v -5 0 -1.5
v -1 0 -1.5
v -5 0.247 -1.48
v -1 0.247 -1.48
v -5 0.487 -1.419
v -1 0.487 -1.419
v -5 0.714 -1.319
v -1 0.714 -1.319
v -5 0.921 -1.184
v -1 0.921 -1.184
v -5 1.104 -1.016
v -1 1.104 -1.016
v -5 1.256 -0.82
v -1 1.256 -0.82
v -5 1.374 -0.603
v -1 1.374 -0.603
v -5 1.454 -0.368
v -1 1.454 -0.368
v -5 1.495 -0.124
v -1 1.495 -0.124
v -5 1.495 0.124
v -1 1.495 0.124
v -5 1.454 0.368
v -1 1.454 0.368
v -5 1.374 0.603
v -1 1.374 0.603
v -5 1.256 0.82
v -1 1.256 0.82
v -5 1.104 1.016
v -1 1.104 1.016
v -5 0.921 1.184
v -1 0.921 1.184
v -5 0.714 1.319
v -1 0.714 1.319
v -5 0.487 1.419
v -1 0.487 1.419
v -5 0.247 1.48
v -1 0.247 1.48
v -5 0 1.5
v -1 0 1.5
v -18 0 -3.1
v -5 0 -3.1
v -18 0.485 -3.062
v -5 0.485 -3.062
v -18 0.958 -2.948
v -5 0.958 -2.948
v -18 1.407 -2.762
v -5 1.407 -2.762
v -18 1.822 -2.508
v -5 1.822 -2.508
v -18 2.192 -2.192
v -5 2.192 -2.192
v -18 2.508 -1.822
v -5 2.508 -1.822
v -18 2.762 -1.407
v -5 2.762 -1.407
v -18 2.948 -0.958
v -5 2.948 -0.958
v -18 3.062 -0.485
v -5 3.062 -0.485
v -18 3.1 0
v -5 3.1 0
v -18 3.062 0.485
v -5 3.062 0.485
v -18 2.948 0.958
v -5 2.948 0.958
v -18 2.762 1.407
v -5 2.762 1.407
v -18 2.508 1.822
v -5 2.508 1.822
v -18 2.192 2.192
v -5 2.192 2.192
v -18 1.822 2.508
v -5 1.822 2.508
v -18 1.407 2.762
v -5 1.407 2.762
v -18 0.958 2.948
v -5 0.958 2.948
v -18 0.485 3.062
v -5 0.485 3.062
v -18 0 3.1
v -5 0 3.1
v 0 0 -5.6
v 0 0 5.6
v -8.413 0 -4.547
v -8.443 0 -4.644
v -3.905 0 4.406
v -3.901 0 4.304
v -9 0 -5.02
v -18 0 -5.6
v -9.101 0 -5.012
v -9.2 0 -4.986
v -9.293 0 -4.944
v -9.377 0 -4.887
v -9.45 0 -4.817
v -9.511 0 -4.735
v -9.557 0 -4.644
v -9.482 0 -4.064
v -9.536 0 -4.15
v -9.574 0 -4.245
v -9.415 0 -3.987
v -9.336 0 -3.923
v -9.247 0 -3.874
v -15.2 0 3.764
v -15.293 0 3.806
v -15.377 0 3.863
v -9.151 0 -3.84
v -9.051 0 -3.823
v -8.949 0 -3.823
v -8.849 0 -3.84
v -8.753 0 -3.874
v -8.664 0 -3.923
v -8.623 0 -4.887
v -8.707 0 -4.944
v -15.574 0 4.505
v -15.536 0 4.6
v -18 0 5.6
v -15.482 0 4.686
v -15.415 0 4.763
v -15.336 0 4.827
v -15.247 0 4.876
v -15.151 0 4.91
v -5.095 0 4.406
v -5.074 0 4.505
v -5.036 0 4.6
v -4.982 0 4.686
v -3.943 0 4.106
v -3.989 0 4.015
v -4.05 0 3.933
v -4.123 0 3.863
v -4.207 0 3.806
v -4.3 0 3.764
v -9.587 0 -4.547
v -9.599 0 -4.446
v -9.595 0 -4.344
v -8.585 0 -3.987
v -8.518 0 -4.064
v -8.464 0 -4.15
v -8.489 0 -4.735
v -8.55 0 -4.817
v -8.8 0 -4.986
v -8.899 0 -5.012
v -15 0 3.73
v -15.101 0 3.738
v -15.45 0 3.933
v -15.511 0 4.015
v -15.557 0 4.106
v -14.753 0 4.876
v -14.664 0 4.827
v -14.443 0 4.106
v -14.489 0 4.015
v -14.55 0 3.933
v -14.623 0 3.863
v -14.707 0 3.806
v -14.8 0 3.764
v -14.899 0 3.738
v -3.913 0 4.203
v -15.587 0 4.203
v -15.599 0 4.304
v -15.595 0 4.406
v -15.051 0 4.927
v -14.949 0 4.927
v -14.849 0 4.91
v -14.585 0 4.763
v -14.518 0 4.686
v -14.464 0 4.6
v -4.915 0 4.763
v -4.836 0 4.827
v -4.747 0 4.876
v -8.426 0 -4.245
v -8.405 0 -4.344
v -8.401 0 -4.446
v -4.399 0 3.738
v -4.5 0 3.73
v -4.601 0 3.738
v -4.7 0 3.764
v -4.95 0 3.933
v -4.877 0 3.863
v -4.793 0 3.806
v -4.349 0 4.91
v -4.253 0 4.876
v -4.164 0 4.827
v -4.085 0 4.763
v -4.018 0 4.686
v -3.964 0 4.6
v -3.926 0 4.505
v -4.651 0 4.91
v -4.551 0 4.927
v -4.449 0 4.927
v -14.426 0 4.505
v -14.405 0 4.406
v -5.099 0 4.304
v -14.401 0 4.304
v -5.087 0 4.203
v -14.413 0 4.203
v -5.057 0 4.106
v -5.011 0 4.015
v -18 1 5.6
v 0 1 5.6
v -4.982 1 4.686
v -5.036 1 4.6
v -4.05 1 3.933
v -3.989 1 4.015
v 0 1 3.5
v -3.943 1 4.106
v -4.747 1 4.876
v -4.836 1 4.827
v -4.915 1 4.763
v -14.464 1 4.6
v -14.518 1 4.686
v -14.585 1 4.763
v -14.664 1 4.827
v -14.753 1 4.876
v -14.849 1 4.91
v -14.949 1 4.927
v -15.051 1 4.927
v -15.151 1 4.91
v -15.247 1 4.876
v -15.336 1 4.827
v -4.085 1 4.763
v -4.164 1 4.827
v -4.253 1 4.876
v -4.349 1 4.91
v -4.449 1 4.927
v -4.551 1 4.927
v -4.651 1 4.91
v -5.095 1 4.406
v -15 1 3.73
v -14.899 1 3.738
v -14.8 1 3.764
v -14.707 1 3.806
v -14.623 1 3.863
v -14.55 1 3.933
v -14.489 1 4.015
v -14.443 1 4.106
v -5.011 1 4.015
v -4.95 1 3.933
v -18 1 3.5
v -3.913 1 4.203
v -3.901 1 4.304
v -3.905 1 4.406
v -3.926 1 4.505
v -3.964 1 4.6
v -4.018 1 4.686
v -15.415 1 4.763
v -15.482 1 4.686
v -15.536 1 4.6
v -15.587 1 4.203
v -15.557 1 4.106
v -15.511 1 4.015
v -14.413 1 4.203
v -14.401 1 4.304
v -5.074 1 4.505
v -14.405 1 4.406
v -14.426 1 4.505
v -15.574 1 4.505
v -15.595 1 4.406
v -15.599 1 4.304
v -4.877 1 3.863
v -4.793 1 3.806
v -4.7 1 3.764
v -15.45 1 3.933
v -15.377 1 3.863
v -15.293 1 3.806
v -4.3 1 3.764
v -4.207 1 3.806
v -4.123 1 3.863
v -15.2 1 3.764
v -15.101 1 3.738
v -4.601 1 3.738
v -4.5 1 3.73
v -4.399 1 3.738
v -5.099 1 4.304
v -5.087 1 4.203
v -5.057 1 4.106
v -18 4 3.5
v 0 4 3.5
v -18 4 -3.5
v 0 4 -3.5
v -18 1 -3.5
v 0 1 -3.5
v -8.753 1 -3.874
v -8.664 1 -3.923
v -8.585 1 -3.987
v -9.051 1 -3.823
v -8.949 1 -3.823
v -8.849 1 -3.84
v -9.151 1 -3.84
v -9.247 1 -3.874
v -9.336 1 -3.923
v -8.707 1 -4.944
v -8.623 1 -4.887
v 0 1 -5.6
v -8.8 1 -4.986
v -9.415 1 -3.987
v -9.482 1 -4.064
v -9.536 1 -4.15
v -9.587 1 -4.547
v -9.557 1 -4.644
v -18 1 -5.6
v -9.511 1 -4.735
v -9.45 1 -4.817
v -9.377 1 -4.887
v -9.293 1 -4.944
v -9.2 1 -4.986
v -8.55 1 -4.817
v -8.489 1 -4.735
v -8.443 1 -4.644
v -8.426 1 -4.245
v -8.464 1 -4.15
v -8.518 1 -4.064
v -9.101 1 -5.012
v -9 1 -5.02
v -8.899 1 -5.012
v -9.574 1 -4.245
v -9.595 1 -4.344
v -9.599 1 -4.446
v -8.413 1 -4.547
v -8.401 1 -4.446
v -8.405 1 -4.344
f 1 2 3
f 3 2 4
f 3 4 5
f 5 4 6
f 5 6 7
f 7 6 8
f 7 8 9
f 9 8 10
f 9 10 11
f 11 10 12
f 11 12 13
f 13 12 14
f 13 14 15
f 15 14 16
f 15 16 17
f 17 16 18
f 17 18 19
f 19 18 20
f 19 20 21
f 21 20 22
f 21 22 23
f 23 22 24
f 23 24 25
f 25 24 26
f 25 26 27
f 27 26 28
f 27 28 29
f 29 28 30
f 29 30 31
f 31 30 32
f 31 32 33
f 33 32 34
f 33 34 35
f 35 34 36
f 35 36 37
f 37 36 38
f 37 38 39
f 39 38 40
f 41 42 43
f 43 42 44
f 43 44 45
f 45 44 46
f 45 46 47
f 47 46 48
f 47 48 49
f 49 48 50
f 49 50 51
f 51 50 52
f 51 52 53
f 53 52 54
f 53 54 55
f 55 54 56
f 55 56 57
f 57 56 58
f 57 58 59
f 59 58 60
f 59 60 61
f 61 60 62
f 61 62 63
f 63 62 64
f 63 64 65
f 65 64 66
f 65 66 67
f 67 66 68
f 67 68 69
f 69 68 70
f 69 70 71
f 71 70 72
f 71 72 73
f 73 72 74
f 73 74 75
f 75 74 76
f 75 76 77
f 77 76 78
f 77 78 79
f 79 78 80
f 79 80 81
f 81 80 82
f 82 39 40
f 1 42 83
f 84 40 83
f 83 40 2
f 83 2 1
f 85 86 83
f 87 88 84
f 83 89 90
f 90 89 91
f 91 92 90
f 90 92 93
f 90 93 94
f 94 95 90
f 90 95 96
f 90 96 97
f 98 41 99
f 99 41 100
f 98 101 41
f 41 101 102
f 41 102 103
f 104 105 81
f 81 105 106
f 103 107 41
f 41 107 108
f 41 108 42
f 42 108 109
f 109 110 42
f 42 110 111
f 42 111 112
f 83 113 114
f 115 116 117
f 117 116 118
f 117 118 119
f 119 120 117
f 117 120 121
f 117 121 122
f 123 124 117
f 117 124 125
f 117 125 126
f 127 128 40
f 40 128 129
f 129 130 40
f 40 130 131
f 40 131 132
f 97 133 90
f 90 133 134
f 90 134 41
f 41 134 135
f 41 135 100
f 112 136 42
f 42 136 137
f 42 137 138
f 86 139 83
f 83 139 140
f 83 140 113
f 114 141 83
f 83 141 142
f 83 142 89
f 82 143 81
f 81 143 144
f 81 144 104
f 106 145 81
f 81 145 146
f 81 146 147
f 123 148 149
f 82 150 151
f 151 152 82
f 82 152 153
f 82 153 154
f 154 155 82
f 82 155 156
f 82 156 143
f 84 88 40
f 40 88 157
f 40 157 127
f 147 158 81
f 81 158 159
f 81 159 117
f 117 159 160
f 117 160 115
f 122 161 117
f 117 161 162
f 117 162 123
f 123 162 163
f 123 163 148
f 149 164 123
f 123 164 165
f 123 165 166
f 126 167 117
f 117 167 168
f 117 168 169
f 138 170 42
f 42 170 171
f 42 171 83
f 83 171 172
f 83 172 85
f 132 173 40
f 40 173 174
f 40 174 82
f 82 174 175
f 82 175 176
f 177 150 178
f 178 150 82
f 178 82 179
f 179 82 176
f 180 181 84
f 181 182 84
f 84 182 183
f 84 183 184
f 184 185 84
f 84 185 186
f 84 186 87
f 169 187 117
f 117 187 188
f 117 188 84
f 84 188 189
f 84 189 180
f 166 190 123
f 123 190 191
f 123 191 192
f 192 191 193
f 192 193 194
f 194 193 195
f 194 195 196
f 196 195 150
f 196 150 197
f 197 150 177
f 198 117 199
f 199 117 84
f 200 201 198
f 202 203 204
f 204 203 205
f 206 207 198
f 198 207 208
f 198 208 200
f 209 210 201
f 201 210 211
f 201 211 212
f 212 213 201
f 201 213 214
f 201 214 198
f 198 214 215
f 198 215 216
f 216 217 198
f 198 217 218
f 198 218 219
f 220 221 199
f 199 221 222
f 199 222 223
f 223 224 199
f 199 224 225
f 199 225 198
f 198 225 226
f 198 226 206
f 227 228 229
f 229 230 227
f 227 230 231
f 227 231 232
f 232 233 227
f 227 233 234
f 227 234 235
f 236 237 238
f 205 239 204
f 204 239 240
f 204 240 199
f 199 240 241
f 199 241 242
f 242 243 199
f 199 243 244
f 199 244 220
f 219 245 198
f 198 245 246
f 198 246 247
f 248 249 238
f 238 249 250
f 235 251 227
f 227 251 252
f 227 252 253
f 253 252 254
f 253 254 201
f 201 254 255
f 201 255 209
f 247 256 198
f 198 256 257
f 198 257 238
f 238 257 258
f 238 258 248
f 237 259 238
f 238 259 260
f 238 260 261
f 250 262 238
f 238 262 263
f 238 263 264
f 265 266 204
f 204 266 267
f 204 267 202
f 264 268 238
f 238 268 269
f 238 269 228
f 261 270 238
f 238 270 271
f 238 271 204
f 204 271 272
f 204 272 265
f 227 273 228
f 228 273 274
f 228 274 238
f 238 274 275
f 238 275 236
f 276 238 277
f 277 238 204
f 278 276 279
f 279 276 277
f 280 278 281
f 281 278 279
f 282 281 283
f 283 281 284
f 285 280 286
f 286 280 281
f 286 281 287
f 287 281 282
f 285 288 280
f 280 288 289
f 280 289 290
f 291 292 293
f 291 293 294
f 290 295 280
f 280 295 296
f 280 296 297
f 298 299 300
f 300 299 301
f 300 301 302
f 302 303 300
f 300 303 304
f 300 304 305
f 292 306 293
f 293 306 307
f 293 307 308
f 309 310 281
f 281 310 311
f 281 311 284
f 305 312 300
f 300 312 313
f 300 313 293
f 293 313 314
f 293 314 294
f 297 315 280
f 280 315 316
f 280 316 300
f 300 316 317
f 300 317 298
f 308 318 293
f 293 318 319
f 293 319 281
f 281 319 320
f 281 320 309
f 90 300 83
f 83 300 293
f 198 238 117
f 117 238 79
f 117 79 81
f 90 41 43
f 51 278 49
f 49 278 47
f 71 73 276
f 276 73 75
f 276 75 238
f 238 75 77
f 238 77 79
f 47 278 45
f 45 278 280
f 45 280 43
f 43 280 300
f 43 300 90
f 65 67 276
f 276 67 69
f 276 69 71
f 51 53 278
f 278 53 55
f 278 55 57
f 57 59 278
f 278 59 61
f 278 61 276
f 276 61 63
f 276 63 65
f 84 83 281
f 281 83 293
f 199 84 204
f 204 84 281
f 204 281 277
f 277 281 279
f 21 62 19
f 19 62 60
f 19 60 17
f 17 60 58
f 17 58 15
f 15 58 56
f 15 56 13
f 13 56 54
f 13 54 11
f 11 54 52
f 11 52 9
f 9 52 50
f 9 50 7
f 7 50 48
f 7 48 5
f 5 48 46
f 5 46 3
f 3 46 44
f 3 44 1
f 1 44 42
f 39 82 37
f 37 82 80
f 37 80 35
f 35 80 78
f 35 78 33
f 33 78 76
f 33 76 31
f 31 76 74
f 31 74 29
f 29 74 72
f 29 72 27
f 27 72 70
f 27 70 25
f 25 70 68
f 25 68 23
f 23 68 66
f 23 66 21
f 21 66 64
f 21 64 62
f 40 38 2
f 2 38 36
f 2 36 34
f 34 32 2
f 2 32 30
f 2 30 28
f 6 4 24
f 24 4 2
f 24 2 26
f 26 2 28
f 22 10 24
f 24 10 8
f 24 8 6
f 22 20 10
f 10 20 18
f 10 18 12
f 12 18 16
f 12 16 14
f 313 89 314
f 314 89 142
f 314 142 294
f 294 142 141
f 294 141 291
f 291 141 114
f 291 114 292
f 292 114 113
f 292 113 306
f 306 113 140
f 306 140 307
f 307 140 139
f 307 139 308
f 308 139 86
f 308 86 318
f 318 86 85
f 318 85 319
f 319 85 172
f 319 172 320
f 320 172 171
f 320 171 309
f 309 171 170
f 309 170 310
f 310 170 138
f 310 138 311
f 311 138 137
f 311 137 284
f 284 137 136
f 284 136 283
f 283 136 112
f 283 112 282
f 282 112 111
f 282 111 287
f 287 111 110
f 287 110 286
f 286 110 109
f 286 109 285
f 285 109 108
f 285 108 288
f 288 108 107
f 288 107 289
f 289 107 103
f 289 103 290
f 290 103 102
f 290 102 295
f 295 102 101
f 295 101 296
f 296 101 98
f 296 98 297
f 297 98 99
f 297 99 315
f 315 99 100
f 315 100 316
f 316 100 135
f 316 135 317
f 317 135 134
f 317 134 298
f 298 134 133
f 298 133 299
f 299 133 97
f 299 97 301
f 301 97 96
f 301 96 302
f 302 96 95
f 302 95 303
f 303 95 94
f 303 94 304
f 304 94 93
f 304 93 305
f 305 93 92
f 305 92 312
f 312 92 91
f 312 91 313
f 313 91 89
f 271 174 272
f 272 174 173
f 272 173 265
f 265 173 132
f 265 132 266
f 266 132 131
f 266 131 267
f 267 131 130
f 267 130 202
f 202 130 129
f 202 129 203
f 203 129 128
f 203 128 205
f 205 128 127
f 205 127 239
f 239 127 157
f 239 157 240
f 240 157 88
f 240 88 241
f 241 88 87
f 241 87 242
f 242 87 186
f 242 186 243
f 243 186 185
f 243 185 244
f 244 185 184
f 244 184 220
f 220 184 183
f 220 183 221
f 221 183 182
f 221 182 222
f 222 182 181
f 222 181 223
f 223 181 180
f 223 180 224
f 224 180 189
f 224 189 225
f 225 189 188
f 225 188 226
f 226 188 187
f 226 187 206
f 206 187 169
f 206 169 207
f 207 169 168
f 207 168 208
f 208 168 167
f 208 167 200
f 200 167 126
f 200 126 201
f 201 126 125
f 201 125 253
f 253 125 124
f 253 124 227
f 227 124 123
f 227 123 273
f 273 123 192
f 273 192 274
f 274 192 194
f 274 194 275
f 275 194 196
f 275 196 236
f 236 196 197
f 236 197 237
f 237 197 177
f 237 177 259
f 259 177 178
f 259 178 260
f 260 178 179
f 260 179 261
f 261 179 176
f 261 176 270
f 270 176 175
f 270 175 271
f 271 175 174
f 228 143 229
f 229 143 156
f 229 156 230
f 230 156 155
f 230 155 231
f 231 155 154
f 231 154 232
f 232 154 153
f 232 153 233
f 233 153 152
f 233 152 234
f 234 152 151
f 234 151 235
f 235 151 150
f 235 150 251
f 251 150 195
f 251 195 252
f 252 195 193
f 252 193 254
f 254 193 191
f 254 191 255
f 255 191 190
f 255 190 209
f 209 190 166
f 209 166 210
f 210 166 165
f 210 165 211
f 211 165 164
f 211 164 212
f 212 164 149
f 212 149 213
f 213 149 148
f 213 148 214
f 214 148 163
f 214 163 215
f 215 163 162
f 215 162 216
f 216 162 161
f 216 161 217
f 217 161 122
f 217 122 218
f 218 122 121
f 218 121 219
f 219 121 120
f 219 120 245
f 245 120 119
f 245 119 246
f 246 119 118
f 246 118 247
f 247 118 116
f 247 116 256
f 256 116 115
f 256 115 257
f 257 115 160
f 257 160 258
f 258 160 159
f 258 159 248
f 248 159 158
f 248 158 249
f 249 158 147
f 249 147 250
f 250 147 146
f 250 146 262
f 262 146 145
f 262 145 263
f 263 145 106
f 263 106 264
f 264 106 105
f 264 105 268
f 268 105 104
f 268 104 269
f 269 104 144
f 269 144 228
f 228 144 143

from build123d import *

# Parameters (mm, degrees)
EXTRUDE_1_DEPTH     = 18
EXTRUDE_2_DEPTH     = 5
EXTRUDE_3_DEPTH     = 1
SKETCH_2_R          = 0.6
CUT_EXTRUDE_1_DEPTH = 20.270703153


with BuildPart() as part:
    # 草图1 → 凸台-拉伸1 (new body)
    with BuildSketch(Plane(origin=(0, 0, 0), x_dir=(0, 0, -1), z_dir=(1, 0, 0))):
        with BuildLine():
            Line((-5.6, 1), (-5.6, 0))
            Line((-5.6, 0), (-3.1, 0))
            ThreePointArc((-3.1, 0), (0, 3.1), (3.1, 0))
            Line((3.1, 0), (5.6, 0))
            Line((5.6, 0), (5.6, 1))
            Line((5.6, 1), (3.5, 1))
            Line((3.5, 1), (3.5, 4))
            Line((3.5, 4), (-3.5, 4))
            Line((-3.5, 4), (-3.5, 1))
            Line((-3.5, 1), (-5.6, 1))
        make_face()
    extrude(amount=-EXTRUDE_1_DEPTH)

    # 草图1<6> → 凸台-拉伸2 (add)
    with BuildSketch(Plane(origin=(0, 0, 0), x_dir=(0, 0, -1), z_dir=(1, 0, 0))):
        with BuildLine():
            ThreePointArc((3.1, 0), (0, 3.1), (-3.1, 0))
            Line((-3.1, 0), (-1.5, 0))
            ThreePointArc((-1.5, 0), (0, 1.5), (1.5, 0))
            Line((1.5, 0), (3.1, 0))
        make_face()
    extrude(amount=-EXTRUDE_2_DEPTH)

    # 草图1<7> → 凸台-拉伸3 (add)
    with BuildSketch(Plane(origin=(0, 0, 0), x_dir=(0, 0, -1), z_dir=(1, 0, 0))):
        with BuildLine():
            ThreePointArc((1.5, 0), (0, 1.5), (-1.5, 0))
            Line((-1.5, 0), (1.5, 0))
        make_face()
    extrude(amount=-EXTRUDE_3_DEPTH)

    # 草图2 → 切除-拉伸1 (cut, through all)
    with BuildSketch(Plane.XZ):
        with Locations((-15, 4.329534947)):
            Circle(SKETCH_2_R)
        with Locations((-4.5, 4.329534947)):
            Circle(SKETCH_2_R)
        with Locations((-9, -4.420465053)):
            Circle(SKETCH_2_R)
    extrude(amount=-CUT_EXTRUDE_1_DEPTH, mode=Mode.SUBTRACT)


solid = part.part
